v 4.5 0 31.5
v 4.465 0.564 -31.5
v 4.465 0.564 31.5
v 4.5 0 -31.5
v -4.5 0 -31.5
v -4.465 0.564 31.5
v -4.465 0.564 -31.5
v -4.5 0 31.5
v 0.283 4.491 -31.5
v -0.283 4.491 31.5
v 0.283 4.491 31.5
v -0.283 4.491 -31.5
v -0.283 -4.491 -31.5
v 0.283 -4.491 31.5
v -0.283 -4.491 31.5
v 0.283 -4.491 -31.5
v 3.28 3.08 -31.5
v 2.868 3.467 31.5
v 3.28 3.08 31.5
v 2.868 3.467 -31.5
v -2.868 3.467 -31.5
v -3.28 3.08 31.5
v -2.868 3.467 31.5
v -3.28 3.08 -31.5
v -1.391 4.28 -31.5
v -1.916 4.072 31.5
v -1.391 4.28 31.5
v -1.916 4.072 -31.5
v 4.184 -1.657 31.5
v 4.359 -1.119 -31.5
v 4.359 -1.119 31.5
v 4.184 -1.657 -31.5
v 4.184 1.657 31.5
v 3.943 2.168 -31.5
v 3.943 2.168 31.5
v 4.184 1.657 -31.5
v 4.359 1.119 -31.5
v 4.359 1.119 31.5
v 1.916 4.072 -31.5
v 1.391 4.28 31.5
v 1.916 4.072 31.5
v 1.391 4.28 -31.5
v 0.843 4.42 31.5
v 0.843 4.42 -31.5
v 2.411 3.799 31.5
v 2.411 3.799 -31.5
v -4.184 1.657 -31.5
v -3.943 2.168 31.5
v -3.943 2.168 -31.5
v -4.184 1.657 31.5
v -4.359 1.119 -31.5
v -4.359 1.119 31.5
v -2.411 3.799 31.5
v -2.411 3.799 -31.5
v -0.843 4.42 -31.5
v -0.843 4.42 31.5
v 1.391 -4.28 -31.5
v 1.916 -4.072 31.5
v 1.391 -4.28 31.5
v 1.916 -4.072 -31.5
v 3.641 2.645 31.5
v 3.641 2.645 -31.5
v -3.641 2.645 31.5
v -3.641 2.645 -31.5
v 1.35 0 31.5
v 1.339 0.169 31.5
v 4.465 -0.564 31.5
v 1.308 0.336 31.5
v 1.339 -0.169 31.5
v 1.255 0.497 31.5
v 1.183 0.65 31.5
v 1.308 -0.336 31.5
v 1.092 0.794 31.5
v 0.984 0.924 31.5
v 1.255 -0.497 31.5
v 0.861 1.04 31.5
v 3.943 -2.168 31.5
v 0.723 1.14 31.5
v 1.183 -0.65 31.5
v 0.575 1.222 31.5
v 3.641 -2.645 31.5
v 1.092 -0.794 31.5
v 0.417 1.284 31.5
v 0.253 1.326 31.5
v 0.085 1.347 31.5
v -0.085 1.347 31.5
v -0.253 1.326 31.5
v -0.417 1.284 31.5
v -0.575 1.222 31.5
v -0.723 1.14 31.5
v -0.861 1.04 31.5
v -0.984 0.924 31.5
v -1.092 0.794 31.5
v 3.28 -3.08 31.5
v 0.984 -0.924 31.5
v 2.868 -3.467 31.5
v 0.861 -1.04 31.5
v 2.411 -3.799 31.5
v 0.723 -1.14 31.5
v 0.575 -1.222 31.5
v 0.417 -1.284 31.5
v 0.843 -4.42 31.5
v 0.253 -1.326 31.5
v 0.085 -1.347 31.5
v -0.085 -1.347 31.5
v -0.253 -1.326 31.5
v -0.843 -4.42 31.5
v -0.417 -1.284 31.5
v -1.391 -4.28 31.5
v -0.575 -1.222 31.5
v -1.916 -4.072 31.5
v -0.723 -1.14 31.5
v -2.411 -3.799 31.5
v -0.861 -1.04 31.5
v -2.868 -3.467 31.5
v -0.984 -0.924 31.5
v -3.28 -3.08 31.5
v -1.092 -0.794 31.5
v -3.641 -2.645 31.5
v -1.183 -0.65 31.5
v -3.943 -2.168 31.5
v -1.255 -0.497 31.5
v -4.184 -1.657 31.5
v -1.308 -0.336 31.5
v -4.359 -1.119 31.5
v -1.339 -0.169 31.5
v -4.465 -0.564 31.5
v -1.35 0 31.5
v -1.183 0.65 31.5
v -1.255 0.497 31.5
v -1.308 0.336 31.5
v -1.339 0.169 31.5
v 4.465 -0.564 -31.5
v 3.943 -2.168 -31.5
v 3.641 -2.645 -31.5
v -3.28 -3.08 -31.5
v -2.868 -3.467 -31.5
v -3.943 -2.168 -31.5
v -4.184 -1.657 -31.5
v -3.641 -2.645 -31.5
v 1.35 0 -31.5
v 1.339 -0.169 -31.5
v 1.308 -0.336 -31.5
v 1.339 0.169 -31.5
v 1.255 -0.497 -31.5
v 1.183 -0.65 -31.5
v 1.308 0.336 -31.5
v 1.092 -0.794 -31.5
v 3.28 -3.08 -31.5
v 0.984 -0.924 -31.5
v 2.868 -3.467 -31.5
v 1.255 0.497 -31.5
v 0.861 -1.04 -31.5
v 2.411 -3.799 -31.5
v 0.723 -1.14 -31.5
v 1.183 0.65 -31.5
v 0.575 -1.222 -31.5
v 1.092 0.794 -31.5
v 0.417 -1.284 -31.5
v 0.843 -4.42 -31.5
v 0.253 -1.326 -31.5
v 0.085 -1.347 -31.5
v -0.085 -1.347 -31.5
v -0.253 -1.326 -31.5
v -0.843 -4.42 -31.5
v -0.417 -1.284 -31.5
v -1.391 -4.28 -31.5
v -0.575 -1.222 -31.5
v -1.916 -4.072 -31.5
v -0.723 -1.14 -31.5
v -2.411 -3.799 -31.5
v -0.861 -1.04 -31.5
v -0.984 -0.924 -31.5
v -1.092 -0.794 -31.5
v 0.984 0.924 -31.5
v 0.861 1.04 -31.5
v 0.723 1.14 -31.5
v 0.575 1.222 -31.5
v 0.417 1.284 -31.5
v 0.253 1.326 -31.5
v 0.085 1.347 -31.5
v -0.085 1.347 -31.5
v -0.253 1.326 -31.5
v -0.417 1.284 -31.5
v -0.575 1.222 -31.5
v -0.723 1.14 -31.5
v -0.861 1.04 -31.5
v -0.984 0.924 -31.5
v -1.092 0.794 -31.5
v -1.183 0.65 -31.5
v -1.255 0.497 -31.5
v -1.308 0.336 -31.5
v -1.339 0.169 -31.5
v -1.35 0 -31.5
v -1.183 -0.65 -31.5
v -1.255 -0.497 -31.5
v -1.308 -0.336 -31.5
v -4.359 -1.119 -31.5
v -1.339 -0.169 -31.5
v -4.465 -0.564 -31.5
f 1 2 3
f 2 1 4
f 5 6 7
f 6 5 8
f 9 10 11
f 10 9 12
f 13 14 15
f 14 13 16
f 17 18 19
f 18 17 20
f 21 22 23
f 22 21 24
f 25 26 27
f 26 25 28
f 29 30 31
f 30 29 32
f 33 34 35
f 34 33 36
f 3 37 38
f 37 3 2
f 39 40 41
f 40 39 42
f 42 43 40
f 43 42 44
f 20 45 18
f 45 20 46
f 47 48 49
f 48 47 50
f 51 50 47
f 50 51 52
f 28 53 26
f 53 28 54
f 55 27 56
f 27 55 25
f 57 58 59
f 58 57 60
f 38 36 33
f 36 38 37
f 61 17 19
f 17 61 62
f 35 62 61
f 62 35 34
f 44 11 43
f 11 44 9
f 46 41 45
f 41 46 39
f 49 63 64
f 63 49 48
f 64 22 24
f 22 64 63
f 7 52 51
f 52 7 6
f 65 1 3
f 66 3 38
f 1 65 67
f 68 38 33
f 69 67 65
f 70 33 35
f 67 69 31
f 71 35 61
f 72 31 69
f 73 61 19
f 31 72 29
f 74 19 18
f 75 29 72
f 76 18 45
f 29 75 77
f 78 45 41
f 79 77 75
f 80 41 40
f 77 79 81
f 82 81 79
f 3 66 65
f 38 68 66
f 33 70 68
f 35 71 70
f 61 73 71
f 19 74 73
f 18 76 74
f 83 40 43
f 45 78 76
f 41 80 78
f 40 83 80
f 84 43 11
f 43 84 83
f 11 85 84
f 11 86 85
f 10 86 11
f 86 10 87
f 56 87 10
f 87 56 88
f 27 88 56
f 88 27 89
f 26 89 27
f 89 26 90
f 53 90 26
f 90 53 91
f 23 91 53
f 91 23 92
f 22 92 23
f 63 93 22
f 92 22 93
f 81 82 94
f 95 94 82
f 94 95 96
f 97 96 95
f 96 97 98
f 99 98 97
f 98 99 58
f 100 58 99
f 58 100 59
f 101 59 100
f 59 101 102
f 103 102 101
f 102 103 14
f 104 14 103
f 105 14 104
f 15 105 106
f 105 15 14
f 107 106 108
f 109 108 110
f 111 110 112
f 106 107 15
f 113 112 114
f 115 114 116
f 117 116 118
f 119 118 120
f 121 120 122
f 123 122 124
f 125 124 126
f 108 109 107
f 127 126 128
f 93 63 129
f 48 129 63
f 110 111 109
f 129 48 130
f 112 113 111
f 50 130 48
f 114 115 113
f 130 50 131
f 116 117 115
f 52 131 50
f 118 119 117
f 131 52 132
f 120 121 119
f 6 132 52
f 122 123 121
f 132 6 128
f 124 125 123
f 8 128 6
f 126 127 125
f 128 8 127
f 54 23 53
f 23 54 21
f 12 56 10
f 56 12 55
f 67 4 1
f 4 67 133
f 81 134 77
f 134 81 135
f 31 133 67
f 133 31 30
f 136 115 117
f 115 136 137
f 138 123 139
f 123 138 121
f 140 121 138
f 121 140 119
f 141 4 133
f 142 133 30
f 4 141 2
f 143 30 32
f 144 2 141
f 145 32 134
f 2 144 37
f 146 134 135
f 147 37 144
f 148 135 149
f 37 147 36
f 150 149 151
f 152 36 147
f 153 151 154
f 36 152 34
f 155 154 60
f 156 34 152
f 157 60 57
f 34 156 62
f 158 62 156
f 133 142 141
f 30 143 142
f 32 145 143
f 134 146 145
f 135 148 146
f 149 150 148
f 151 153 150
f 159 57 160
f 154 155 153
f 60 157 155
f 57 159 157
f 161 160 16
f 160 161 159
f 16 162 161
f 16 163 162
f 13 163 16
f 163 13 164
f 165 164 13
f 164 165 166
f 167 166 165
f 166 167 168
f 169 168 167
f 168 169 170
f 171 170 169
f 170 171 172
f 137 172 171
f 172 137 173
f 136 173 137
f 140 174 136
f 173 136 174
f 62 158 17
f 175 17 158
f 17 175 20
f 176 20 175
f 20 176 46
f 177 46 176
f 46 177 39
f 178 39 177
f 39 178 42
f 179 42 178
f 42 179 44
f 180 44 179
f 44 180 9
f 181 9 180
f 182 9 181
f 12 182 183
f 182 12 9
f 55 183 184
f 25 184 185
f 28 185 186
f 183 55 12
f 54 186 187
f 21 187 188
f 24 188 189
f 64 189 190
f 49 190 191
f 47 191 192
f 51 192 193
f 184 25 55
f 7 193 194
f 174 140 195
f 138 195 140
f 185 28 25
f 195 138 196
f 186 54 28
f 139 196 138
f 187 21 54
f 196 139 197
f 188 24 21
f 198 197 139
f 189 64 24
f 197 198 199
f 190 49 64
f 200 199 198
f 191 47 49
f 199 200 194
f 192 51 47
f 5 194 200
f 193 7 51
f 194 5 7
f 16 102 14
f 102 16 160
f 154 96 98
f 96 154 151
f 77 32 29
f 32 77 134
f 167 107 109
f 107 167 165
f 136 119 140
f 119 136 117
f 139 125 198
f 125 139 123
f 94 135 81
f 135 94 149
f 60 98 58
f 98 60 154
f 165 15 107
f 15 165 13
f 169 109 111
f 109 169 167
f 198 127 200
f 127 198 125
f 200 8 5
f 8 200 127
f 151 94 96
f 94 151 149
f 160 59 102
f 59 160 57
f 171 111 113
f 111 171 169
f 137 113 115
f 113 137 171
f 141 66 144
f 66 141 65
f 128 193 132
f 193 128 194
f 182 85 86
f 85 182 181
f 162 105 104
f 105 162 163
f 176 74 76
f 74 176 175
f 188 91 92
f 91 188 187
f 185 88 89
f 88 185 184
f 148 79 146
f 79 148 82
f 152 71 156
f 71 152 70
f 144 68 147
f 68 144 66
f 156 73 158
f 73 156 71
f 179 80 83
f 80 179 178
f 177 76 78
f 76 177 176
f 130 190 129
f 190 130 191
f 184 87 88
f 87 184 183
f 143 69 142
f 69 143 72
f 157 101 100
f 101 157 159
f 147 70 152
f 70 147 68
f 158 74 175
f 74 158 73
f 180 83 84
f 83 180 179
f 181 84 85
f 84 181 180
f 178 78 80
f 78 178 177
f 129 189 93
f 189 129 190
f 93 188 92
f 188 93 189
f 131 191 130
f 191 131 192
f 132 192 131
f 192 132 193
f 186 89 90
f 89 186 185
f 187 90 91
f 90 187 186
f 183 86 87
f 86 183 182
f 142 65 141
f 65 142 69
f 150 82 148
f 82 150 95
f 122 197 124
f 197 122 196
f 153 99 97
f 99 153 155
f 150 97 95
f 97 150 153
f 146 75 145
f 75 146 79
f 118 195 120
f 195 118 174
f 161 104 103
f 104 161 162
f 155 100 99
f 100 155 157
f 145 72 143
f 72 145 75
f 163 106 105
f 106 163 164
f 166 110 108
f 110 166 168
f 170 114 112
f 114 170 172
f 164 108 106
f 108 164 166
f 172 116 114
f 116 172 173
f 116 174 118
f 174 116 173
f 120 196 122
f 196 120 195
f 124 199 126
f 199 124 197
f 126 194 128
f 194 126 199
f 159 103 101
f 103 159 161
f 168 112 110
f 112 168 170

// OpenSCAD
$fn = 50;


difference() {
	union() {
		translate(v = [0, 0, -31.5000000000]) {
			cylinder(h = 63, r = 4.5000000000);
		}
	}
	union() {
		translate(v = [0, 0, -100.0000000000]) {
			cylinder(h = 200, r = 1.3500000000);
		}
	}
}
